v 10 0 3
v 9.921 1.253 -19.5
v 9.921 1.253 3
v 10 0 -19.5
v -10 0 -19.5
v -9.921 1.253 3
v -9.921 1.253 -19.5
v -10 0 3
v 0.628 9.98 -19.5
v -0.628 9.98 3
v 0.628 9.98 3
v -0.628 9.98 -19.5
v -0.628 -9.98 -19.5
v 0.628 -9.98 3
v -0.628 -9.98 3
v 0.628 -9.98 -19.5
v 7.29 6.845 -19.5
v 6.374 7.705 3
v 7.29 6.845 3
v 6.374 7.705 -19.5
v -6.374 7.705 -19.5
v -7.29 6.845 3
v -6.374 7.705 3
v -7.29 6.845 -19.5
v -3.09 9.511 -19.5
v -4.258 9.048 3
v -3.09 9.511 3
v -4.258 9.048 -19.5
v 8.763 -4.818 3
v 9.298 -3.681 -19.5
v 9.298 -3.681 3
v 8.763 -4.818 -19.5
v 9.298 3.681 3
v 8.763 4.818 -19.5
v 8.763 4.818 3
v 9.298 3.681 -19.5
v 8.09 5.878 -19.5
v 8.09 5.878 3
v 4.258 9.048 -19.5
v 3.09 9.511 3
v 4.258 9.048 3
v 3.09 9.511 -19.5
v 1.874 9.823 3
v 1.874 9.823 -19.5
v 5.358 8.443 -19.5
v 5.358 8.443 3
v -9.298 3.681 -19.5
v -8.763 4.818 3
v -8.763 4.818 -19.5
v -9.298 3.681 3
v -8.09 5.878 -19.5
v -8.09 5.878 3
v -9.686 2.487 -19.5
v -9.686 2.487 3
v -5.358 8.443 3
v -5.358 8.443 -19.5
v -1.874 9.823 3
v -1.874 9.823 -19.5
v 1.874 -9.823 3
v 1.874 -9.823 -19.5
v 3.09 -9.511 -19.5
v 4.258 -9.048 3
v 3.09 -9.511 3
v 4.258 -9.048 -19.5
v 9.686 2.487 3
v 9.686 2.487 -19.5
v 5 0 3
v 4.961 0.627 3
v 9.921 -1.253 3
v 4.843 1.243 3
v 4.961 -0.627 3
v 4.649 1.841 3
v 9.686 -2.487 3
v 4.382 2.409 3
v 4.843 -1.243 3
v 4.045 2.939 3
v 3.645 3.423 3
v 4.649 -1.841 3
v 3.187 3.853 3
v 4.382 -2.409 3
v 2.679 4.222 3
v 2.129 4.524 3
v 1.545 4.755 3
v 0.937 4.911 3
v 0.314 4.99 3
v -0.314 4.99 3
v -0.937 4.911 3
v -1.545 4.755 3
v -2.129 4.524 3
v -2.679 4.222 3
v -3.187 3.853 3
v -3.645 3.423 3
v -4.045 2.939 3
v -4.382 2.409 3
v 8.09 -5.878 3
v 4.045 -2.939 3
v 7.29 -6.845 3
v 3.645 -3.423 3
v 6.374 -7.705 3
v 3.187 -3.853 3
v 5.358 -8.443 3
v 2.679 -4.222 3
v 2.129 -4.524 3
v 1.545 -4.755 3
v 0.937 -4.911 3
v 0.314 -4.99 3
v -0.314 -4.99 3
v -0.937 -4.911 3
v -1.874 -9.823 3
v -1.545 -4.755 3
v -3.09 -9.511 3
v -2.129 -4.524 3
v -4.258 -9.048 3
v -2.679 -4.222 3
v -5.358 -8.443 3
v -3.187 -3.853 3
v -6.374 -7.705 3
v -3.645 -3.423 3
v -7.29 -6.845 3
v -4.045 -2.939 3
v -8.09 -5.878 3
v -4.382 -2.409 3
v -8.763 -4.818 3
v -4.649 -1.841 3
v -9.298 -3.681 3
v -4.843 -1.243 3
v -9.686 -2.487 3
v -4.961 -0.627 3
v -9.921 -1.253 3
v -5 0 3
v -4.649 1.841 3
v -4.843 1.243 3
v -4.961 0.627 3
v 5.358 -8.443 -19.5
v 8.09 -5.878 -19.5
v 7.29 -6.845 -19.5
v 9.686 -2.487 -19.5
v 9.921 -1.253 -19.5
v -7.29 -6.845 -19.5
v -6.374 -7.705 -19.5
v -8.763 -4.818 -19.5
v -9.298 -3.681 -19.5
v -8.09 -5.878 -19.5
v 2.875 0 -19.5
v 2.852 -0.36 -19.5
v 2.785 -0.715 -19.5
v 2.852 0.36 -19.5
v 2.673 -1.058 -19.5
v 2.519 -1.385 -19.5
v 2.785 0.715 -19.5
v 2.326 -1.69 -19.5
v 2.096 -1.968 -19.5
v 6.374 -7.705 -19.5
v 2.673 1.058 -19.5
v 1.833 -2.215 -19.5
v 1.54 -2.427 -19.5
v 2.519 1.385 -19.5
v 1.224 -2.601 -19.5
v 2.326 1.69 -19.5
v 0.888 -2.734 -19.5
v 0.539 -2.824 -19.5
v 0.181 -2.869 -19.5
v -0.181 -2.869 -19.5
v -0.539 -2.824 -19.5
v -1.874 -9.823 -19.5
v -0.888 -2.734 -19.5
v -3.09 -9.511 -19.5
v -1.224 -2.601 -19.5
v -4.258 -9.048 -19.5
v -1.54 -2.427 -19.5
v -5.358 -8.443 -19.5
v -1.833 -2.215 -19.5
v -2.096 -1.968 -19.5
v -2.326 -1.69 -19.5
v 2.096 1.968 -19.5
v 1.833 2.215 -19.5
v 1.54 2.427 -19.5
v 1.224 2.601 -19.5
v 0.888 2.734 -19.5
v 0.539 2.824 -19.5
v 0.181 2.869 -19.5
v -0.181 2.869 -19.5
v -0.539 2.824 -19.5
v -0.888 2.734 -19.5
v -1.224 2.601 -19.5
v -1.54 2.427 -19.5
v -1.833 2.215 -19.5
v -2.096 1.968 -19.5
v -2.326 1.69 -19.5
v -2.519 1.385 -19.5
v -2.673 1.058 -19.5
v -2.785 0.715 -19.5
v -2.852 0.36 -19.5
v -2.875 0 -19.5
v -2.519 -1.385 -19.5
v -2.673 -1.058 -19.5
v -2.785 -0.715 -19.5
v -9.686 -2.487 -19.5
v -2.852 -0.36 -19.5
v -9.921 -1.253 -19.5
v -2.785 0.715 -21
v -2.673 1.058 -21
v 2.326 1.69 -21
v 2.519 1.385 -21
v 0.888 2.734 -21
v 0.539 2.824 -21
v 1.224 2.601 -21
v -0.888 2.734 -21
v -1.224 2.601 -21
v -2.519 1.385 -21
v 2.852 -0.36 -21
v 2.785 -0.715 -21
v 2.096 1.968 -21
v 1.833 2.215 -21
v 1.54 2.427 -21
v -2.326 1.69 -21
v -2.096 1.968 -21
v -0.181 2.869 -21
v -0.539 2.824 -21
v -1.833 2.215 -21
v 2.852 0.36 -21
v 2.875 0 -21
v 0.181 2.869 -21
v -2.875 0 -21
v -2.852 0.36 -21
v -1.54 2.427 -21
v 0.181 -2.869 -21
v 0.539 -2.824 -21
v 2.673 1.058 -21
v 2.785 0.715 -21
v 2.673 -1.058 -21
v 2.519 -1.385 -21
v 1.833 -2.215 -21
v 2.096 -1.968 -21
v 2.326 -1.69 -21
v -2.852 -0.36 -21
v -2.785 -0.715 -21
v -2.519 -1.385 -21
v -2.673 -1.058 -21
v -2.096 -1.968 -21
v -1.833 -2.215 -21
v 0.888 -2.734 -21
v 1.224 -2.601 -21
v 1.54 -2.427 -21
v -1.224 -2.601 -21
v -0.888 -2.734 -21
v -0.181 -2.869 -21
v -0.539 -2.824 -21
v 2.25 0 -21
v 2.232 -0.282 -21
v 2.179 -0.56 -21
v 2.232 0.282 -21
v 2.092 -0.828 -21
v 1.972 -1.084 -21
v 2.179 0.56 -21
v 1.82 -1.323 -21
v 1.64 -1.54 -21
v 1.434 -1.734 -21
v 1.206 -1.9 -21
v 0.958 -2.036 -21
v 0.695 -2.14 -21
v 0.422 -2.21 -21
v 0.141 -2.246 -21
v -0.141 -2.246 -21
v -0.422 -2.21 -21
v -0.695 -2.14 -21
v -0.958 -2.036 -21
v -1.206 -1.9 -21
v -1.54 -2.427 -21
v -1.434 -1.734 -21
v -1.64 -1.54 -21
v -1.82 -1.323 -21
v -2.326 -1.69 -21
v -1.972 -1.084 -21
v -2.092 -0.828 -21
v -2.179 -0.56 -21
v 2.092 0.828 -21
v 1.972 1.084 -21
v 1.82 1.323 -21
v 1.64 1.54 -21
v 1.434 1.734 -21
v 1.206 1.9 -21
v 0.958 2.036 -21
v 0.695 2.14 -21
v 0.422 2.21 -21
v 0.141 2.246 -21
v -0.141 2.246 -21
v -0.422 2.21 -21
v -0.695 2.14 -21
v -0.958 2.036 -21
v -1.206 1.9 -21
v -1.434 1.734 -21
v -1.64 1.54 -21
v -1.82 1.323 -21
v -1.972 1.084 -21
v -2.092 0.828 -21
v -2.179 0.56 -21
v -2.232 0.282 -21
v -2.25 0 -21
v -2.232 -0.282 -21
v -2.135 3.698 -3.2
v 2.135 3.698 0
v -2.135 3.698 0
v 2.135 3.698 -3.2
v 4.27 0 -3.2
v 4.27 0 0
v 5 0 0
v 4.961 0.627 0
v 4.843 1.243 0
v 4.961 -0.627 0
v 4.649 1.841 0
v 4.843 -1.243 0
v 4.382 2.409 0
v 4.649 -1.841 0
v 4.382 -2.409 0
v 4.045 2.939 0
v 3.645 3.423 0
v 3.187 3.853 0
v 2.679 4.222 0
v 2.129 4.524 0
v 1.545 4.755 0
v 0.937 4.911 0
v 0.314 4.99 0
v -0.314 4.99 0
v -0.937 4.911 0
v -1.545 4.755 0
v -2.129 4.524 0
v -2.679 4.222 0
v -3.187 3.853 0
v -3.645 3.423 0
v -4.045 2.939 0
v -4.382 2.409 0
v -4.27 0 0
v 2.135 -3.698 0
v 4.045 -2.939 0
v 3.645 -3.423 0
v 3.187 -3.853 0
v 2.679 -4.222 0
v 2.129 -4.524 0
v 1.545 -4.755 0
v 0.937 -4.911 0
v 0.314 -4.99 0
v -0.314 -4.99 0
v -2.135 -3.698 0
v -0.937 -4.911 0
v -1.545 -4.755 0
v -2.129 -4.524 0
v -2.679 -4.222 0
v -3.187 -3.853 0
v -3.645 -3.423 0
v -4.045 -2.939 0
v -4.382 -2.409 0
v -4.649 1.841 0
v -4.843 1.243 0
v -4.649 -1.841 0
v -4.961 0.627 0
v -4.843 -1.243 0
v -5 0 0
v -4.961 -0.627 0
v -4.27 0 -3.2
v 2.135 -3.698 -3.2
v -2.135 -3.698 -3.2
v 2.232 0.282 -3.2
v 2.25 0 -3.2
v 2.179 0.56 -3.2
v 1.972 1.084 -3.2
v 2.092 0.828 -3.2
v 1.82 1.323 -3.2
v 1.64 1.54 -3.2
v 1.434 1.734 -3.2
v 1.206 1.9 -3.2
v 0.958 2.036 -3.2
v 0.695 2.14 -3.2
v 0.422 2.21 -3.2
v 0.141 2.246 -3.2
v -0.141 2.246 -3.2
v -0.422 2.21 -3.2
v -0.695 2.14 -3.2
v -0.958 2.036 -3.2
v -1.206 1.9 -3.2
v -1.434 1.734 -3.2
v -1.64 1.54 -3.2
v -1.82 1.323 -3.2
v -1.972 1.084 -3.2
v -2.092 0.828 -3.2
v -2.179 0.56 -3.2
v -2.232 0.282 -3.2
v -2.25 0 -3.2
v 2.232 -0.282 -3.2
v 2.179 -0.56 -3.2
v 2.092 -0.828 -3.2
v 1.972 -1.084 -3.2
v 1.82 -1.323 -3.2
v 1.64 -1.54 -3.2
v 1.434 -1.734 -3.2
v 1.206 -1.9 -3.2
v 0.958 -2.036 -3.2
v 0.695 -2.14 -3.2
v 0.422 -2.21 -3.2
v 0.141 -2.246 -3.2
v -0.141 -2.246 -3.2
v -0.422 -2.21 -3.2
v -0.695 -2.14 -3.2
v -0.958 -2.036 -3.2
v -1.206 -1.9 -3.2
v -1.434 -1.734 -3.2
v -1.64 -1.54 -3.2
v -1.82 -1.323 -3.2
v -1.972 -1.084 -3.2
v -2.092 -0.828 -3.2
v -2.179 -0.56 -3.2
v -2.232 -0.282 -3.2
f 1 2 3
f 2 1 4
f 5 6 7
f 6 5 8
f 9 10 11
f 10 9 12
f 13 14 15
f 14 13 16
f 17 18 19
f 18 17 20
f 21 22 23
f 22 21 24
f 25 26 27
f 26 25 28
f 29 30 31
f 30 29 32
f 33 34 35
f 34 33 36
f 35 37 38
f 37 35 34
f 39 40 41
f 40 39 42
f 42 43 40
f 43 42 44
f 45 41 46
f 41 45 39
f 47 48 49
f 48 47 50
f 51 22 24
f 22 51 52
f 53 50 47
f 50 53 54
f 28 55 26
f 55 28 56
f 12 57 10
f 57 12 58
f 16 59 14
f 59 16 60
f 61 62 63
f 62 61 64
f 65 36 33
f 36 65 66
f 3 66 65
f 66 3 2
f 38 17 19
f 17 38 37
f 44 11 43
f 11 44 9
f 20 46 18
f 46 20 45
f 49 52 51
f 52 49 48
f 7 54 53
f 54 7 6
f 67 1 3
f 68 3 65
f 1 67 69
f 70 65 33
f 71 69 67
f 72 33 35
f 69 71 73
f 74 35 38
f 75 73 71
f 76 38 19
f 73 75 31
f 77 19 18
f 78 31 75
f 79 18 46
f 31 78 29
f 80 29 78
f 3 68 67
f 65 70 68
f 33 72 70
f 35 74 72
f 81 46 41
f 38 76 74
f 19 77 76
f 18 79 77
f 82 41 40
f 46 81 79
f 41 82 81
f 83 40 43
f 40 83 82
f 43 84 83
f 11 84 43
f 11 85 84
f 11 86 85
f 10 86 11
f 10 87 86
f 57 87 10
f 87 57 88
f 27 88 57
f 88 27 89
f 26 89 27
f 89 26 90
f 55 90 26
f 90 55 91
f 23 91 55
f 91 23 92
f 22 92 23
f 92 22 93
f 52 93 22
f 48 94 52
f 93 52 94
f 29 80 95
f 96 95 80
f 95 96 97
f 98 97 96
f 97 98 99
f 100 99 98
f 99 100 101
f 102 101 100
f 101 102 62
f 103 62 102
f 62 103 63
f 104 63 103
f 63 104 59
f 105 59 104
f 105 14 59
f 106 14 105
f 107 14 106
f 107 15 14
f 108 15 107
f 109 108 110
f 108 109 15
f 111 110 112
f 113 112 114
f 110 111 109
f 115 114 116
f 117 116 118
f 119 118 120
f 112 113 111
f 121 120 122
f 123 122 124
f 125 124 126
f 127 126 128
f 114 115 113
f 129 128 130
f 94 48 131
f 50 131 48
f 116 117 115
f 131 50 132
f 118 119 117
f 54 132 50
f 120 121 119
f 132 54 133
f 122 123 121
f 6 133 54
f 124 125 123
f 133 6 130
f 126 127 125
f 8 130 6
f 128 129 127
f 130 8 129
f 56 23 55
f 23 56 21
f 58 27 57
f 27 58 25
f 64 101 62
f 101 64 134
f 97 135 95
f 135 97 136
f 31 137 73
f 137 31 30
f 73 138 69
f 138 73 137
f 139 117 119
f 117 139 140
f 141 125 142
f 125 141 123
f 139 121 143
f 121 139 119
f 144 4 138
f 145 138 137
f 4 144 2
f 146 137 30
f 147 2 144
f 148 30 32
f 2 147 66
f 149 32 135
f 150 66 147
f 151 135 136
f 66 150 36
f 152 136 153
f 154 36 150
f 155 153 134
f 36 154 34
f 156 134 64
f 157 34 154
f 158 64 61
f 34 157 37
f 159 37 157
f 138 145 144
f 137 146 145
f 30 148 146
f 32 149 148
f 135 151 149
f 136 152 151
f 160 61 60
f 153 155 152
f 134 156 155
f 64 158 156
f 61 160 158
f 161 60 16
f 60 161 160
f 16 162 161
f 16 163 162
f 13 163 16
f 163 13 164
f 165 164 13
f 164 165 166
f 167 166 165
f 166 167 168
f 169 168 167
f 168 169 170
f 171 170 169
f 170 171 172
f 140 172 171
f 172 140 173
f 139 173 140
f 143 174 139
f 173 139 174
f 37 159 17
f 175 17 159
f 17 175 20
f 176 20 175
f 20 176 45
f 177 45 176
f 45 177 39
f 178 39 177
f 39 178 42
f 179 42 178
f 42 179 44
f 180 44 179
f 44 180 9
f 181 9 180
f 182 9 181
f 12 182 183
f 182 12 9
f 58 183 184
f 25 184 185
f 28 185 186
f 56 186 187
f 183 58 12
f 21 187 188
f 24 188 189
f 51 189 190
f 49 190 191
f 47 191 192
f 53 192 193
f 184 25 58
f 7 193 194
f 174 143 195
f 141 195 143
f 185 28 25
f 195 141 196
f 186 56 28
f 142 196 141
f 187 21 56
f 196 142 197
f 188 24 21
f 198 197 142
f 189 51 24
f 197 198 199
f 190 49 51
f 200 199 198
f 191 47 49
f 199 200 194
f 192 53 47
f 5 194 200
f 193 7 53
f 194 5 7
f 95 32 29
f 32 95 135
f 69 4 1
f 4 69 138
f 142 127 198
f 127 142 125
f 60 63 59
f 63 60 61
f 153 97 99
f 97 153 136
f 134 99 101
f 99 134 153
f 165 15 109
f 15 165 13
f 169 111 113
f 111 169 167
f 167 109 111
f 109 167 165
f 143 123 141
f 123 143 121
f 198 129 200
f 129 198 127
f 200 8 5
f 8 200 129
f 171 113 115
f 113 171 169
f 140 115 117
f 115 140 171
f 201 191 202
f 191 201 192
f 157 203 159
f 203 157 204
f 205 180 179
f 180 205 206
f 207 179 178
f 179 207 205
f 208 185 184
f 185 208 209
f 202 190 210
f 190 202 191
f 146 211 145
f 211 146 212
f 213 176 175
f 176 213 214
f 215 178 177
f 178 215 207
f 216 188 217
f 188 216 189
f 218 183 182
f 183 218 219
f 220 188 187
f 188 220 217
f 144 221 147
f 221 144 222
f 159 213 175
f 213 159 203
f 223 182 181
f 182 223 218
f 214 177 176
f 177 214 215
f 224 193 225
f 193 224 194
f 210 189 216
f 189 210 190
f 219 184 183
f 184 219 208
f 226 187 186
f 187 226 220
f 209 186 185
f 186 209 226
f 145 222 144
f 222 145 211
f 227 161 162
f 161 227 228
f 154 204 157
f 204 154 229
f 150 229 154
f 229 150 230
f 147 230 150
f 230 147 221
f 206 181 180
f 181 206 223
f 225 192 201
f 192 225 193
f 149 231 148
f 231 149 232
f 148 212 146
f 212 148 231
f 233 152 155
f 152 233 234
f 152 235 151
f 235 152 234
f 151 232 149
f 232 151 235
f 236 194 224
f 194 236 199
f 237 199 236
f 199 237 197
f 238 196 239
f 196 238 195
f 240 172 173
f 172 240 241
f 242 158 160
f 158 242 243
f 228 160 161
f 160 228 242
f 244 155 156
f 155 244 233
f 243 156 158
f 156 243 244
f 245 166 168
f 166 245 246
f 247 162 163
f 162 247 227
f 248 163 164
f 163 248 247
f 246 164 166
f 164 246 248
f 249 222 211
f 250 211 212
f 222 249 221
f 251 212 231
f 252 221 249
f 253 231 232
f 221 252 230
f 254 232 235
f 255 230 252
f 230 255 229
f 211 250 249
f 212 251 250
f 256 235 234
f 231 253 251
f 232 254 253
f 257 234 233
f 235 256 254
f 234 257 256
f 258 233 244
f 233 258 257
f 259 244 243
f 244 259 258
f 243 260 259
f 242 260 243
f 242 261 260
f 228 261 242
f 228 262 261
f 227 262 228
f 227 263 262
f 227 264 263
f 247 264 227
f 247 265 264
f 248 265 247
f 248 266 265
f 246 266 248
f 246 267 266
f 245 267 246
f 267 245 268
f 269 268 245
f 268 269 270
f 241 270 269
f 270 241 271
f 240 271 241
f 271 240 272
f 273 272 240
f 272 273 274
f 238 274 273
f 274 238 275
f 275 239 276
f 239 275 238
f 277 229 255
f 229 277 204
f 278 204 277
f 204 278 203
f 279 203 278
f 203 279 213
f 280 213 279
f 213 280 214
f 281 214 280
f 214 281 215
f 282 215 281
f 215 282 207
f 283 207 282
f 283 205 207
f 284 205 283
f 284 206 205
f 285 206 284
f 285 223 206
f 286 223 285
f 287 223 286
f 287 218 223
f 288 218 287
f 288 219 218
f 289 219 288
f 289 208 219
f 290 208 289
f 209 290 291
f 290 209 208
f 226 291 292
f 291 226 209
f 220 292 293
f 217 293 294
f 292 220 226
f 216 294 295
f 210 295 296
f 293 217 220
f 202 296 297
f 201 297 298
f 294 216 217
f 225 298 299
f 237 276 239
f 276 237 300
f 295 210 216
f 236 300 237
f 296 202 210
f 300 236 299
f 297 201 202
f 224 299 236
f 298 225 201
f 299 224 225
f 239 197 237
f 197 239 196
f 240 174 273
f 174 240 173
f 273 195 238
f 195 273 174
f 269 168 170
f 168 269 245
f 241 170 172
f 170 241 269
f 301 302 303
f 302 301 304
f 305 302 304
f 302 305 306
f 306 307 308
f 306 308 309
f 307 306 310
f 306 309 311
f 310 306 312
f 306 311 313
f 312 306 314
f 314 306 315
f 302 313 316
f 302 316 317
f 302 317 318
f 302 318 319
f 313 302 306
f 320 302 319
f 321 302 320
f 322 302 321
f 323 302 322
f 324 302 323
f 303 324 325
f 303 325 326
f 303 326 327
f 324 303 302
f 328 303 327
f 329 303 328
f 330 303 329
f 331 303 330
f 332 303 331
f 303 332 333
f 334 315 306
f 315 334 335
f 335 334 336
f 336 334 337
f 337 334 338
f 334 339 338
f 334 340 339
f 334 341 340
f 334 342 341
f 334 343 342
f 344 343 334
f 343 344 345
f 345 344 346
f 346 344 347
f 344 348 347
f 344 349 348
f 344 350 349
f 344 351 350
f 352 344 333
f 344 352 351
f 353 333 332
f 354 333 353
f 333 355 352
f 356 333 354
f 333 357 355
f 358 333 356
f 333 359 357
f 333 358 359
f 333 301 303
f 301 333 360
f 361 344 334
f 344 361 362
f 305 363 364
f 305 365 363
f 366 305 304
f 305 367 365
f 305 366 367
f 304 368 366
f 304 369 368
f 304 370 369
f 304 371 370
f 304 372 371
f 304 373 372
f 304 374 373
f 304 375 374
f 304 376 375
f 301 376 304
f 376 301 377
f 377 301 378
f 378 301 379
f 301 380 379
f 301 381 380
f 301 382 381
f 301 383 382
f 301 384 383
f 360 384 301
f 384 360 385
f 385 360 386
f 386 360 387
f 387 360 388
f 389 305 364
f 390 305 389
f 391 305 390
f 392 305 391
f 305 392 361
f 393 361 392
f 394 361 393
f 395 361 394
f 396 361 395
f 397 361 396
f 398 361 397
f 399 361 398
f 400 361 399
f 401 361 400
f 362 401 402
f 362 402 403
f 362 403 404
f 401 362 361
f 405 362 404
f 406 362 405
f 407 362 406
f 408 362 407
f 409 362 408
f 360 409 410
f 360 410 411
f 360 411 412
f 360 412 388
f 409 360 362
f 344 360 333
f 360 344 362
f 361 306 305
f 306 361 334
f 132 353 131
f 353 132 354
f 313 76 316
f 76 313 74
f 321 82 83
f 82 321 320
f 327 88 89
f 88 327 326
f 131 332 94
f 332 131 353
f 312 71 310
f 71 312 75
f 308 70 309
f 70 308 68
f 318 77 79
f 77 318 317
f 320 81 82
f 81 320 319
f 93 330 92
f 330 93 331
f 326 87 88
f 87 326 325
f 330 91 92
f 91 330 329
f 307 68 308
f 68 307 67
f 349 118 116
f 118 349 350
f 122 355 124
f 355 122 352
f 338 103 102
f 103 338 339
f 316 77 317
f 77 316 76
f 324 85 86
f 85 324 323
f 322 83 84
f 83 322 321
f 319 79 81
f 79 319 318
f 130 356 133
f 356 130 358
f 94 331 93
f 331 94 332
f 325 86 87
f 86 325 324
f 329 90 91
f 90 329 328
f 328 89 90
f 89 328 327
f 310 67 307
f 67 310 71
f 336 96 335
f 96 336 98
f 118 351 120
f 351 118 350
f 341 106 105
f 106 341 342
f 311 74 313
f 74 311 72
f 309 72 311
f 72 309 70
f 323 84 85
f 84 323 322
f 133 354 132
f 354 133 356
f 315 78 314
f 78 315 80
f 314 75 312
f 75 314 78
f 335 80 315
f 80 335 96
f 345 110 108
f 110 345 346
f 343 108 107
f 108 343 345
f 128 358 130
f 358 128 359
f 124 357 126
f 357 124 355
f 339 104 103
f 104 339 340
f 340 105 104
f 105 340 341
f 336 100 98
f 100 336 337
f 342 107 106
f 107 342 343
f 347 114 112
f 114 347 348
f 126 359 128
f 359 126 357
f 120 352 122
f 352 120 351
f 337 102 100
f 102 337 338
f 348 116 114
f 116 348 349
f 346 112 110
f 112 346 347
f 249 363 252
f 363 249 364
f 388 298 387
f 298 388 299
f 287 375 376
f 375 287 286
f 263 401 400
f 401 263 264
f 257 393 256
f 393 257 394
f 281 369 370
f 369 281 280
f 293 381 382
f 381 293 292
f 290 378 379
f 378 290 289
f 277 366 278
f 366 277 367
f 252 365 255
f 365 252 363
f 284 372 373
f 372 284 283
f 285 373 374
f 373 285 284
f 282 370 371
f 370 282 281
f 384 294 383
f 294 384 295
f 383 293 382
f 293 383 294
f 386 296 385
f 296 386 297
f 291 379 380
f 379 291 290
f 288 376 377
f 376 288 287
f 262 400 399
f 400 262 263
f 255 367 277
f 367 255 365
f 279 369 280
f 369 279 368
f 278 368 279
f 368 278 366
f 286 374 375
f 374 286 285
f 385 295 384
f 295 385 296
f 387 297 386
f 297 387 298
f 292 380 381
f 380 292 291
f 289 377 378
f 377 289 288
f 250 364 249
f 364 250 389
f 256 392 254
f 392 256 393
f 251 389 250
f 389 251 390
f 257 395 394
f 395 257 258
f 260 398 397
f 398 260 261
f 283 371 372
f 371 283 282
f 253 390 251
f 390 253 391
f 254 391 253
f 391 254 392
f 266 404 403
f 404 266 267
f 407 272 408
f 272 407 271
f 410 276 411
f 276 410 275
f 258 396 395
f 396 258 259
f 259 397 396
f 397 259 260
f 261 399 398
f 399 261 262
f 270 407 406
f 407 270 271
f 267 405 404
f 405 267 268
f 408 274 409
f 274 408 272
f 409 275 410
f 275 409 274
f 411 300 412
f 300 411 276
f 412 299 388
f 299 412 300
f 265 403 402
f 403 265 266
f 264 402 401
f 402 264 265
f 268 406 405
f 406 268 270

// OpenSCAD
$fn = 50;

difference() {
	union() {
		translate(v = [0, 0, -19.5]) {
			cylinder(h = 22.5, r = 10.0);
		}
		#translate(v = [0, 0, -21.0]) {
			cylinder(h = 21, r = 2.875);
		}
	}
	union() {
		translate(v = [0, 0, 0]) {
			rotate(a = [0, 0, 0]) {
				difference() {
					union() {
						translate(v = [0, 0, -3.2]) {
							linear_extrude(height = 3.2) {
								polygon(points = [[4.2698, 0.0], [2.1349000000000005, 3.697755269078796], [-2.134899999999999, 3.6977552690787965], [-4.2698, 5.228996902999369e-16], [-2.134900000000002, -3.6977552690787956], [2.1348999999999974, -3.697755269078798]]);
							}
						}
					}
					union();
				}
			}
		}
		#cylinder(h = 3, r = 5.0);
		#translate(v = [0, 0, -100.0]) {
			cylinder(h = 200, r = 2.25);
		}
	}
}
